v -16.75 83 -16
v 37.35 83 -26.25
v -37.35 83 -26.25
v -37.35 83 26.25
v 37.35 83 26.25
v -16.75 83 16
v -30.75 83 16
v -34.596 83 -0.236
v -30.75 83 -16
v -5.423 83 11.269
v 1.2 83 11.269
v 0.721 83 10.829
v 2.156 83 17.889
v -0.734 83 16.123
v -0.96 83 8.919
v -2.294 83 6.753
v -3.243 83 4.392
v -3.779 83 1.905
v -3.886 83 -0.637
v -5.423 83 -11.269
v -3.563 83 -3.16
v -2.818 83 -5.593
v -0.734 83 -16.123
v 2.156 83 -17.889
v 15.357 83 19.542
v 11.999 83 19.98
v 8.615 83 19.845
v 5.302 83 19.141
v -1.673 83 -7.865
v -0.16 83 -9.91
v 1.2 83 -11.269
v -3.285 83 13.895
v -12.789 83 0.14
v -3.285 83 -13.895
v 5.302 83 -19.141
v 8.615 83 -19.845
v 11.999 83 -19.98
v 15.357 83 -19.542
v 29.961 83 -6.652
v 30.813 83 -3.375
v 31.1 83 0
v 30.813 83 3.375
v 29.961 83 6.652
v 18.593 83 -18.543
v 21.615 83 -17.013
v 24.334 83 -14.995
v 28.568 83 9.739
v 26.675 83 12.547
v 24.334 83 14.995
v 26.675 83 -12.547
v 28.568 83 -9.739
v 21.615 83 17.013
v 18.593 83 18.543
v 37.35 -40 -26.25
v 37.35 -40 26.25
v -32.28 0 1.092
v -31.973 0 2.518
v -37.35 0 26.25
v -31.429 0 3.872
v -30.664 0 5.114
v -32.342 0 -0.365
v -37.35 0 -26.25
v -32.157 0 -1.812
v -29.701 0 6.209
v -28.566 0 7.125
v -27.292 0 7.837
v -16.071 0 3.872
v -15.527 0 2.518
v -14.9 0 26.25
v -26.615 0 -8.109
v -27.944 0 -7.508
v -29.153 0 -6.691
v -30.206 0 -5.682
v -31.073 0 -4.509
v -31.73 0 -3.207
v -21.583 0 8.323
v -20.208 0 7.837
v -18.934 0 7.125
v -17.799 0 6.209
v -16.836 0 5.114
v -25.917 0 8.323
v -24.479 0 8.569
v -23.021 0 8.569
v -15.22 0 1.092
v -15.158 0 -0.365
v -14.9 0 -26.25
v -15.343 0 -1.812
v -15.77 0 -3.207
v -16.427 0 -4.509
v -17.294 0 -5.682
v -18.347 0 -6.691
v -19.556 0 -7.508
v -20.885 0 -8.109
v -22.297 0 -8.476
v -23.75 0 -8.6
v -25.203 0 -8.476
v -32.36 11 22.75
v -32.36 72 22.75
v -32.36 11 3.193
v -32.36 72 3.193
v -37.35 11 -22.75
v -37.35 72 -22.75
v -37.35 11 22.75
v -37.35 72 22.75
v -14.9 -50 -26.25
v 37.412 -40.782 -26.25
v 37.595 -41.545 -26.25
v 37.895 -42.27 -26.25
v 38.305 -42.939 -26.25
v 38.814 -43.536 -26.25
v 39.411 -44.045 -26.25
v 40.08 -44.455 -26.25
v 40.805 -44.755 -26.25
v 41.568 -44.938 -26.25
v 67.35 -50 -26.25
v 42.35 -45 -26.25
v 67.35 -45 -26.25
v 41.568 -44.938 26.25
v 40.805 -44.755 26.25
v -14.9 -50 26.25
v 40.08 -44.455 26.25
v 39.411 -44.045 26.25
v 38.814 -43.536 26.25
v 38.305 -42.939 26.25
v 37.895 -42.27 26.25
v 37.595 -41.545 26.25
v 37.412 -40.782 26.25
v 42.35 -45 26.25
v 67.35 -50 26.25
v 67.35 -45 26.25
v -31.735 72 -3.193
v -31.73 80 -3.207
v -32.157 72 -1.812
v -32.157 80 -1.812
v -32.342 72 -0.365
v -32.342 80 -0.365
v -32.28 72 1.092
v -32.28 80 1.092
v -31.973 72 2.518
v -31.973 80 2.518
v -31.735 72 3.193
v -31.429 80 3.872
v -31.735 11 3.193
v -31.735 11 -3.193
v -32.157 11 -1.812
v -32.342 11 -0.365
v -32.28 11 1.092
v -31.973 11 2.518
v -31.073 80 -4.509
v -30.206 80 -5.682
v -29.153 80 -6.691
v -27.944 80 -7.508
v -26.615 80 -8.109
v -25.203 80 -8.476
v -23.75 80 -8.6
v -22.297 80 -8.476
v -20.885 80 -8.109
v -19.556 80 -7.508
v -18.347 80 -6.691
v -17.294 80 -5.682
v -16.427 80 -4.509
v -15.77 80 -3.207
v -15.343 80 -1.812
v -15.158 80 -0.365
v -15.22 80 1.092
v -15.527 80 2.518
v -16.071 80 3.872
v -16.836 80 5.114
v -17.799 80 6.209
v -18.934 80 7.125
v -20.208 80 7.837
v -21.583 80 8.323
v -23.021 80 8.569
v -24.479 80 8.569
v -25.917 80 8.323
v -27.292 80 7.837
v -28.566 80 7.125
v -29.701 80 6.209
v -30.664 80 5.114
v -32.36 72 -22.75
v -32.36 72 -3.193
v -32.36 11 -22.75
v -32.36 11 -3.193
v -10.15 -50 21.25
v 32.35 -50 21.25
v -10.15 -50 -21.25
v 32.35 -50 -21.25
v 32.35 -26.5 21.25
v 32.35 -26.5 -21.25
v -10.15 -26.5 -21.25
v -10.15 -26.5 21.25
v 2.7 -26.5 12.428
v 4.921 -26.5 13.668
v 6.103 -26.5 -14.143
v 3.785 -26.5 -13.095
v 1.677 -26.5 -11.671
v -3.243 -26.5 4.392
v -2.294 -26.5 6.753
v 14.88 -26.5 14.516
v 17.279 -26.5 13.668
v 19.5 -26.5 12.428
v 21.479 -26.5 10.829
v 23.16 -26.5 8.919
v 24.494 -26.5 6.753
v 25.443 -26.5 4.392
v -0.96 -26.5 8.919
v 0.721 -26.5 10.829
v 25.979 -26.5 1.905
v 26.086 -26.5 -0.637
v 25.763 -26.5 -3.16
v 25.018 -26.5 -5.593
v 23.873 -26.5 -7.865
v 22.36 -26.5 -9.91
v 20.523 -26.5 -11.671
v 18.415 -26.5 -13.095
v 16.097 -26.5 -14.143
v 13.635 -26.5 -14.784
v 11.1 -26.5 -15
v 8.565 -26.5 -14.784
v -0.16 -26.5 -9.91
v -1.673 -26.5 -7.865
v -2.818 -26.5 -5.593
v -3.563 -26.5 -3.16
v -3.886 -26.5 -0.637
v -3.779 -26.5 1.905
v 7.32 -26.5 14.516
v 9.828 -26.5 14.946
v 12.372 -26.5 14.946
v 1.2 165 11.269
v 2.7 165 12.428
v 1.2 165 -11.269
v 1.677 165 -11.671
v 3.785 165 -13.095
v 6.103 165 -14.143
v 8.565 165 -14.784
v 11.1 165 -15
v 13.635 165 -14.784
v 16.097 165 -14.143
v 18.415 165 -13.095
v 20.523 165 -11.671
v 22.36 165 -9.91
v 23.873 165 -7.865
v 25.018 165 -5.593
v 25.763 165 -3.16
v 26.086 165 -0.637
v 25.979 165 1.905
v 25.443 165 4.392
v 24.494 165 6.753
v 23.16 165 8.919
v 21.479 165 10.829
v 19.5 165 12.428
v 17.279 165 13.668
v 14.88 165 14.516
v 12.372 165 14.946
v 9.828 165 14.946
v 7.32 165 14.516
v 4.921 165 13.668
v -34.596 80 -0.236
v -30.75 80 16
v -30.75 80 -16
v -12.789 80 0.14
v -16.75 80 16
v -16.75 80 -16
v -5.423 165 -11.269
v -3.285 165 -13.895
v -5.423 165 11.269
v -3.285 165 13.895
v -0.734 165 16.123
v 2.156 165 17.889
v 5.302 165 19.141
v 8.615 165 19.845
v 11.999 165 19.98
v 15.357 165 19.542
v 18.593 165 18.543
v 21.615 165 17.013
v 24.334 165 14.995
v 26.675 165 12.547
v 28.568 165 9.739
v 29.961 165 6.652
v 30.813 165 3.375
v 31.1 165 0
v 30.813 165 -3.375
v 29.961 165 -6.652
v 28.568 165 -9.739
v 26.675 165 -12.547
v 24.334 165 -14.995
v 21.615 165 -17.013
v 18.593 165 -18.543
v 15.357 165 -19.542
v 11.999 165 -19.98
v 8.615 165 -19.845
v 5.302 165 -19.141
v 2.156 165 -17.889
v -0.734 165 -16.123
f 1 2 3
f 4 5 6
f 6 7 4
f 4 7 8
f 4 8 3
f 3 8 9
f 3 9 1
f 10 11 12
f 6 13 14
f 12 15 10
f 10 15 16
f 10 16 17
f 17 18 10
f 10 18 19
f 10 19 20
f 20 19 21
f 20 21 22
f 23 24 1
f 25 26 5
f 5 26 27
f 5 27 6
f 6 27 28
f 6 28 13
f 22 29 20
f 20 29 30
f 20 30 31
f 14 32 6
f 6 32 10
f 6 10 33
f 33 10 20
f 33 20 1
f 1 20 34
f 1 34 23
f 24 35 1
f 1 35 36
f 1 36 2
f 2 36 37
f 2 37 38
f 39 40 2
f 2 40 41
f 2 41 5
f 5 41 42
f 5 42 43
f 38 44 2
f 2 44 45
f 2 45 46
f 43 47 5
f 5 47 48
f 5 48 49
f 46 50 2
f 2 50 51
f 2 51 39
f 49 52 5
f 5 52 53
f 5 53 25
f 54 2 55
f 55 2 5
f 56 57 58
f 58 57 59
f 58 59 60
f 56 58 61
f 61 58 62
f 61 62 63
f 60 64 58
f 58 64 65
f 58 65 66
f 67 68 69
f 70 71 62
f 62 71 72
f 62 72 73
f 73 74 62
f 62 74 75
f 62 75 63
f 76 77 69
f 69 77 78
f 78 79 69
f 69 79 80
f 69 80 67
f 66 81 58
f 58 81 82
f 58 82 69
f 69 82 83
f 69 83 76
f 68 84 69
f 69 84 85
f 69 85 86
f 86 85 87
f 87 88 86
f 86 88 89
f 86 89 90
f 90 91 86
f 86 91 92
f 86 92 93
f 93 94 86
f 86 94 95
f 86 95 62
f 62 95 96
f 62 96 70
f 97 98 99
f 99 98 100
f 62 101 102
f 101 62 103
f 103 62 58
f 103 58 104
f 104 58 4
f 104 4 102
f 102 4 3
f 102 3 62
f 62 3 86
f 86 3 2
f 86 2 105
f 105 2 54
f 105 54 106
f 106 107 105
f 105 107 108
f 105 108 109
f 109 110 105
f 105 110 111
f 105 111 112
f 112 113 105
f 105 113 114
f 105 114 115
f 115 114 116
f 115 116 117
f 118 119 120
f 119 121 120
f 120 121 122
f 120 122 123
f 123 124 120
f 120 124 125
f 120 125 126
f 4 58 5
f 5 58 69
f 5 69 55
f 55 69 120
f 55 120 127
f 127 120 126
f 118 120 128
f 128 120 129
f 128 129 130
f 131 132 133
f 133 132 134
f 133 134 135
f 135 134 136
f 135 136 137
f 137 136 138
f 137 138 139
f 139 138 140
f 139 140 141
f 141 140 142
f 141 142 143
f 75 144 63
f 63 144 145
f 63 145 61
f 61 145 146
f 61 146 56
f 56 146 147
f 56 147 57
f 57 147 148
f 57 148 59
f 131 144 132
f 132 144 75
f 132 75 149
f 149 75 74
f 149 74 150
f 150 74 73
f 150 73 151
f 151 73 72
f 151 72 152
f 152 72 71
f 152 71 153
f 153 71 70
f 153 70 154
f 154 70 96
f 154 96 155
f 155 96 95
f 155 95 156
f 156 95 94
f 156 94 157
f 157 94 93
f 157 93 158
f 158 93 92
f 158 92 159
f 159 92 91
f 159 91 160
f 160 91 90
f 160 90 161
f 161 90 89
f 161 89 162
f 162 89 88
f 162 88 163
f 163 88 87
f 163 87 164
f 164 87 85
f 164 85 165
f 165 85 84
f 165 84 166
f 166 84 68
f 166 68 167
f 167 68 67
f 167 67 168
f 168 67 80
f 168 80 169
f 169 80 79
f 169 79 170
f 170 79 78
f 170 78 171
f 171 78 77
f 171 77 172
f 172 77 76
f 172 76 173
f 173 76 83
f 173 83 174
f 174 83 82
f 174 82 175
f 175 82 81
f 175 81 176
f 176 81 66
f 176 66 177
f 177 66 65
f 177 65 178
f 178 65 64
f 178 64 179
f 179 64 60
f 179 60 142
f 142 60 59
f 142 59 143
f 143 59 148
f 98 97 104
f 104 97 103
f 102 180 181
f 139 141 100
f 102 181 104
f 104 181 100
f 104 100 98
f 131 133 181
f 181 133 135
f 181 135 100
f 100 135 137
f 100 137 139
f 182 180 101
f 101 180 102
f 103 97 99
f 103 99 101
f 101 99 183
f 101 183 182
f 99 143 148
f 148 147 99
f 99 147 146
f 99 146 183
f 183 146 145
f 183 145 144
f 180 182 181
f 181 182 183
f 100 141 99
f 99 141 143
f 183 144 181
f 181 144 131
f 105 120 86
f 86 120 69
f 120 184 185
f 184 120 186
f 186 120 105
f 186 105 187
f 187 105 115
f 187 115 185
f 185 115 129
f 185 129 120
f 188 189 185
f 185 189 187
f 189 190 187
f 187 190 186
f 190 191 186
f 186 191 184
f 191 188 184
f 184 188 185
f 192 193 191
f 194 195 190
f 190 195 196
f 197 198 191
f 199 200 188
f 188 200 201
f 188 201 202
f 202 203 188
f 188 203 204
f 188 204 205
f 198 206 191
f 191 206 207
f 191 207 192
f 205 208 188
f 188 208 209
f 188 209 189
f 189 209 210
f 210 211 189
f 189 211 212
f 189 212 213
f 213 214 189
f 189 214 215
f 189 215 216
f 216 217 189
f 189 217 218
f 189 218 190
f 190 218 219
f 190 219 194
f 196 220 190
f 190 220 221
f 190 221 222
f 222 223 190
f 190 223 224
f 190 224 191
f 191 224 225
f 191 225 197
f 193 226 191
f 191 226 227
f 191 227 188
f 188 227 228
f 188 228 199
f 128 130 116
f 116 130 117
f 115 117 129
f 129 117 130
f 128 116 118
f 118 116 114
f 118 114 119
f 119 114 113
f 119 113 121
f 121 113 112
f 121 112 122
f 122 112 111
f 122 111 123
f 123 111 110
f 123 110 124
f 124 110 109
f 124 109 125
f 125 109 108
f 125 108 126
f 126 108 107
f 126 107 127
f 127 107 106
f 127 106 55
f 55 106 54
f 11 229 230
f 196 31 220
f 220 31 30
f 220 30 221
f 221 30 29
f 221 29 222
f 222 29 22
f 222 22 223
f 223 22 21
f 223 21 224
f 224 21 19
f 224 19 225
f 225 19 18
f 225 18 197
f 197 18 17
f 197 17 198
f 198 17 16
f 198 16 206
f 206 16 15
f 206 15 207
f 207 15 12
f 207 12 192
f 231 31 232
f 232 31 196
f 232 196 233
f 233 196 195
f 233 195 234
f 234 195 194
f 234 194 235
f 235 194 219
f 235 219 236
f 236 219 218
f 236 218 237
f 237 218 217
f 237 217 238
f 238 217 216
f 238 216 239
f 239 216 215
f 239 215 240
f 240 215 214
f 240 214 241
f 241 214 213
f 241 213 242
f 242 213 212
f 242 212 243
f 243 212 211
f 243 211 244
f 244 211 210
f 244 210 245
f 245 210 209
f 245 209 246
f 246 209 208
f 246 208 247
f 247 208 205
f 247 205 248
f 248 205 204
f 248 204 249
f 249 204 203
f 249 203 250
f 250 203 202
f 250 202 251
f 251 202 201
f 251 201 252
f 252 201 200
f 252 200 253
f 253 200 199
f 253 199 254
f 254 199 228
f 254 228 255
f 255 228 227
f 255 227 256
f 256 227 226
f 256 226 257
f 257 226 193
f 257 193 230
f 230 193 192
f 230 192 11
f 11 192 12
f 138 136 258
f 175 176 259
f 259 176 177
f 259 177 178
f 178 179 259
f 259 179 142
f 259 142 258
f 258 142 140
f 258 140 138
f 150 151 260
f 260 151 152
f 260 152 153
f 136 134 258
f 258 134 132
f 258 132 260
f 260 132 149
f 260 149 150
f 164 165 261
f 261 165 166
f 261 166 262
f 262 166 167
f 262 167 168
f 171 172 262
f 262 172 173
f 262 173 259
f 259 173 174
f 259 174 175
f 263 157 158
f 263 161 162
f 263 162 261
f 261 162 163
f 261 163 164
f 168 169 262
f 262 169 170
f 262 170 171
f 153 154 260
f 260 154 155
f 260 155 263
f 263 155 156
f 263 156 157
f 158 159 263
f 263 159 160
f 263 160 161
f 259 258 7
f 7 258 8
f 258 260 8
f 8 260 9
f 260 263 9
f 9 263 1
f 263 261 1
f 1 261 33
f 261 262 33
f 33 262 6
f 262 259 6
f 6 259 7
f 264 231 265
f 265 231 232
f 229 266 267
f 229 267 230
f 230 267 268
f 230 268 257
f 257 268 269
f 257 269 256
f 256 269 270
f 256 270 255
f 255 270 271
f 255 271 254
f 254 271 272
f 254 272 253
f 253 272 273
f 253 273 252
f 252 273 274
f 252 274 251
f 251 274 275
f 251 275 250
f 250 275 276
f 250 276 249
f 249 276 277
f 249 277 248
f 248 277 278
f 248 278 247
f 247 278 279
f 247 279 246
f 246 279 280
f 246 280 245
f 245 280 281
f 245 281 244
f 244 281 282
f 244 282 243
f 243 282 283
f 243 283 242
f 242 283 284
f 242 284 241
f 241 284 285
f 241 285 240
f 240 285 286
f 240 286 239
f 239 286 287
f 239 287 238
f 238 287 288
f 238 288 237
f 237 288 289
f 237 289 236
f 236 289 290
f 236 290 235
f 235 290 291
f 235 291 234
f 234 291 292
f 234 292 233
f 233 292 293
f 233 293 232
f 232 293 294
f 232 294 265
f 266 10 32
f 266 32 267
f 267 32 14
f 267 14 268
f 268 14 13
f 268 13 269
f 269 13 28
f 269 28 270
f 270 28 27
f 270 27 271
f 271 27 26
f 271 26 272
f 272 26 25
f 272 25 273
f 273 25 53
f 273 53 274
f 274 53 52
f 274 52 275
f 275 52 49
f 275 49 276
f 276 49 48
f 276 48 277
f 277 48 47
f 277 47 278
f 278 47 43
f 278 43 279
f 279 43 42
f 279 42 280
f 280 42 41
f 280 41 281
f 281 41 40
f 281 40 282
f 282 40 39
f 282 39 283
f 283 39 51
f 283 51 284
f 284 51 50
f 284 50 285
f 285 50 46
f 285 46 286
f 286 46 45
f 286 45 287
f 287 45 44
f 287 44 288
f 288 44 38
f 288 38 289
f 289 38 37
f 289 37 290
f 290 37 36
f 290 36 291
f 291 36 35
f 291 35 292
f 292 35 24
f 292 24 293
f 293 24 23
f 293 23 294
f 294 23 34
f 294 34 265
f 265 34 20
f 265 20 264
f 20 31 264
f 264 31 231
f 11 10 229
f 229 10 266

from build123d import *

# Parameters (mm, degrees)
SKETCH1_W                = 74.7
SKETCH1_H                = 52.5
BOSS_EXTRUDE1_DEPTH      = 83
SKETCH4_W                = 42.5
SKETCH4_H                = 42.5
CUT_EXTRUDE1_DEPTH       = 24
SKETCH7_R                = 8.6
CUT_EXTRUDE6_DEPTH       = 130
CUT_EXTRUDE16_DEPTH      = 115.708990493
CUT_EXTRUDE16_DEPTH_BACK = 4.99
SKETCH13_W               = 45.5
SKETCH13_H               = 61
SKETCH15_W               = 6.385819608
SKETCH15_H               = 61
CUT_EXTRUDE17_DEPTH      = 1
SKETCH18_W               = 42.5
SKETCH18_H               = 42.5
BOSS_EXTRUDE2_DEPTH      = 31
SKETCH19_W               = 52.25
SKETCH19_H               = 52.5
BOSS_EXTRUDE3_DEPTH      = 50
SKETCH20_W               = 42.5
SKETCH20_H               = 42.5
CUT_EXTRUDE19_DEPTH      = 23.5
SKETCH21_W               = 52.5
SKETCH21_H               = 5
BOSS_EXTRUDE4_DEPTH      = 30
FILLET1_R                = 5
SKETCH22_R               = 15
CUT_EXTRUDE20_DEPTH      = 120
CUT_EXTRUDE21_DEPTH      = 3
SKETCH24_R               = 20
SKETCH24_R_2             = 15
BOSS_EXTRUDE5_DEPTH      = 82
CUT_EXTRUDE22_START      = -82
CUT_EXTRUDE22_DEPTH      = 82


with BuildPart() as part:
    # Sketch1 → Boss-Extrude1 (new body)
    with BuildSketch(Plane(origin=(0, 0, 0), x_dir=(1, 0, 0), z_dir=(0, 1, 0))):
        Rectangle(SKETCH1_W, SKETCH1_H)
    extrude(amount=BOSS_EXTRUDE1_DEPTH)

    # Sketch4 → Cut-Extrude1 (cut)
    with BuildSketch(Plane.XZ):
        with Locations((11.1, 0)):
            Rectangle(SKETCH4_W, SKETCH4_H)
    extrude(amount=-CUT_EXTRUDE1_DEPTH, mode=Mode.SUBTRACT)

    # Sketch7 → Cut-Extrude6 (cut)
    with BuildSketch(Plane.XZ):
        with Locations(Location((-23.75, 0, 0), (0, 0, 270))):
            Circle(SKETCH7_R)
    extrude(amount=-CUT_EXTRUDE6_DEPTH, mode=Mode.SUBTRACT)

    # Sketch13 → Cut-Extrude16 (cut, two sides: drawn at the far end of the back side and taken through both)
    with BuildSketch(Plane.ZY.offset(37.35).offset(-CUT_EXTRUDE16_DEPTH_BACK)):
        with Locations((0, 41.5)):
            Rectangle(SKETCH13_W, SKETCH13_H)
    extrude(amount=CUT_EXTRUDE16_DEPTH + CUT_EXTRUDE16_DEPTH_BACK, mode=Mode.SUBTRACT)

    # Sketch15 → Cut-Extrude17 (cut)
    with BuildSketch(Plane.ZY.offset(32.36)):
        with Locations((0, 41.5)):
            Rectangle(SKETCH15_W, SKETCH15_H)
    extrude(amount=-CUT_EXTRUDE17_DEPTH, mode=Mode.SUBTRACT)

    # Sketch18 → Boss-Extrude2 (add)
    with BuildSketch(Plane.XZ):
        with Locations((11.1, 0)):
            Rectangle(SKETCH18_W, SKETCH18_H)
    extrude(amount=-BOSS_EXTRUDE2_DEPTH)

    # Sketch19 → Boss-Extrude3 (add)
    with BuildSketch(Plane.XZ):
        with Locations((11.225, 0)):
            Rectangle(SKETCH19_W, SKETCH19_H)
    extrude(amount=BOSS_EXTRUDE3_DEPTH)

    # Sketch20 → Cut-Extrude19 (cut)
    with BuildSketch(Plane.XZ.offset(50)):
        with Locations((11.1, 0)):
            Rectangle(SKETCH20_W, SKETCH20_H)
    extrude(amount=-CUT_EXTRUDE19_DEPTH, mode=Mode.SUBTRACT)

    # Sketch21 → Boss-Extrude4 (add)
    with BuildSketch(Plane(origin=(37.35, 0, 0), x_dir=(0, 0, -1), z_dir=(1, 0, 0))):
        with Locations((0, -47.5)):
            Rectangle(SKETCH21_W, SKETCH21_H)
    extrude(amount=BOSS_EXTRUDE4_DEPTH)

    # Fillet1
    fillet1_edges = [part.edges().sort_by_distance(p)[0] for p in [
        (37.35, -45, 0),
    ]]
    fillet(fillet1_edges, radius=FILLET1_R)

    # Sketch22 → Cut-Extrude20 (cut)
    with BuildSketch(Plane.XZ.offset(26.5)):
        with Locations(Location((11.1, 0, 0), (0, 0, 270))):
            Circle(SKETCH22_R)
    extrude(amount=-CUT_EXTRUDE20_DEPTH, mode=Mode.SUBTRACT)

    # Sketch23 → Cut-Extrude21 (cut)
    with BuildSketch(Plane(origin=(0, 83, 0), x_dir=(1, 0, 0), z_dir=(0, 1, 0))):
        Polygon((-16.75, 16), (-12.788538026, -0.140014893), (-16.75, -16), (-30.75, -16), (-34.596459266, 0.235543482), (-30.75, 16), align=None)
    extrude(amount=-CUT_EXTRUDE21_DEPTH, mode=Mode.SUBTRACT)

    # Sketch24 → Boss-Extrude5 (add)
    with BuildSketch(Plane(origin=(0, 83, 0), x_dir=(1, 0, 0), z_dir=(0, 1, 0))):
        with Locations(Location((11.1, 0, 0), (0, 0, 270))):
            Circle(SKETCH24_R)
        with Locations(Location((11.1, 0, 0), (0, 0, 90))):
            Circle(SKETCH24_R_2, mode=Mode.SUBTRACT)
    extrude(amount=BOSS_EXTRUDE5_DEPTH)

    # Sketch27 → Cut-Extrude22 (cut)
    with BuildSketch(Plane(origin=(0, 165, 0), x_dir=(1, 0, 0), z_dir=(0, 1, 0)).offset(CUT_EXTRUDE22_START)):
        with BuildLine():
            Line((-5.423226258, 11.268673126), (1.199646169, 11.268673126))
            ThreePointArc((1.199646169, 11.268673126), (-3.9, 0), (1.199646169, -11.268673126))
            Line((1.199646169, -11.268673126), (-5.423226258, -11.268673126))
            ThreePointArc((-5.423226258, -11.268673126), (-8.9, 0), (-5.423226258, 11.268673126))
        make_face()
    extrude(amount=CUT_EXTRUDE22_DEPTH, mode=Mode.SUBTRACT)


solid = part.part
